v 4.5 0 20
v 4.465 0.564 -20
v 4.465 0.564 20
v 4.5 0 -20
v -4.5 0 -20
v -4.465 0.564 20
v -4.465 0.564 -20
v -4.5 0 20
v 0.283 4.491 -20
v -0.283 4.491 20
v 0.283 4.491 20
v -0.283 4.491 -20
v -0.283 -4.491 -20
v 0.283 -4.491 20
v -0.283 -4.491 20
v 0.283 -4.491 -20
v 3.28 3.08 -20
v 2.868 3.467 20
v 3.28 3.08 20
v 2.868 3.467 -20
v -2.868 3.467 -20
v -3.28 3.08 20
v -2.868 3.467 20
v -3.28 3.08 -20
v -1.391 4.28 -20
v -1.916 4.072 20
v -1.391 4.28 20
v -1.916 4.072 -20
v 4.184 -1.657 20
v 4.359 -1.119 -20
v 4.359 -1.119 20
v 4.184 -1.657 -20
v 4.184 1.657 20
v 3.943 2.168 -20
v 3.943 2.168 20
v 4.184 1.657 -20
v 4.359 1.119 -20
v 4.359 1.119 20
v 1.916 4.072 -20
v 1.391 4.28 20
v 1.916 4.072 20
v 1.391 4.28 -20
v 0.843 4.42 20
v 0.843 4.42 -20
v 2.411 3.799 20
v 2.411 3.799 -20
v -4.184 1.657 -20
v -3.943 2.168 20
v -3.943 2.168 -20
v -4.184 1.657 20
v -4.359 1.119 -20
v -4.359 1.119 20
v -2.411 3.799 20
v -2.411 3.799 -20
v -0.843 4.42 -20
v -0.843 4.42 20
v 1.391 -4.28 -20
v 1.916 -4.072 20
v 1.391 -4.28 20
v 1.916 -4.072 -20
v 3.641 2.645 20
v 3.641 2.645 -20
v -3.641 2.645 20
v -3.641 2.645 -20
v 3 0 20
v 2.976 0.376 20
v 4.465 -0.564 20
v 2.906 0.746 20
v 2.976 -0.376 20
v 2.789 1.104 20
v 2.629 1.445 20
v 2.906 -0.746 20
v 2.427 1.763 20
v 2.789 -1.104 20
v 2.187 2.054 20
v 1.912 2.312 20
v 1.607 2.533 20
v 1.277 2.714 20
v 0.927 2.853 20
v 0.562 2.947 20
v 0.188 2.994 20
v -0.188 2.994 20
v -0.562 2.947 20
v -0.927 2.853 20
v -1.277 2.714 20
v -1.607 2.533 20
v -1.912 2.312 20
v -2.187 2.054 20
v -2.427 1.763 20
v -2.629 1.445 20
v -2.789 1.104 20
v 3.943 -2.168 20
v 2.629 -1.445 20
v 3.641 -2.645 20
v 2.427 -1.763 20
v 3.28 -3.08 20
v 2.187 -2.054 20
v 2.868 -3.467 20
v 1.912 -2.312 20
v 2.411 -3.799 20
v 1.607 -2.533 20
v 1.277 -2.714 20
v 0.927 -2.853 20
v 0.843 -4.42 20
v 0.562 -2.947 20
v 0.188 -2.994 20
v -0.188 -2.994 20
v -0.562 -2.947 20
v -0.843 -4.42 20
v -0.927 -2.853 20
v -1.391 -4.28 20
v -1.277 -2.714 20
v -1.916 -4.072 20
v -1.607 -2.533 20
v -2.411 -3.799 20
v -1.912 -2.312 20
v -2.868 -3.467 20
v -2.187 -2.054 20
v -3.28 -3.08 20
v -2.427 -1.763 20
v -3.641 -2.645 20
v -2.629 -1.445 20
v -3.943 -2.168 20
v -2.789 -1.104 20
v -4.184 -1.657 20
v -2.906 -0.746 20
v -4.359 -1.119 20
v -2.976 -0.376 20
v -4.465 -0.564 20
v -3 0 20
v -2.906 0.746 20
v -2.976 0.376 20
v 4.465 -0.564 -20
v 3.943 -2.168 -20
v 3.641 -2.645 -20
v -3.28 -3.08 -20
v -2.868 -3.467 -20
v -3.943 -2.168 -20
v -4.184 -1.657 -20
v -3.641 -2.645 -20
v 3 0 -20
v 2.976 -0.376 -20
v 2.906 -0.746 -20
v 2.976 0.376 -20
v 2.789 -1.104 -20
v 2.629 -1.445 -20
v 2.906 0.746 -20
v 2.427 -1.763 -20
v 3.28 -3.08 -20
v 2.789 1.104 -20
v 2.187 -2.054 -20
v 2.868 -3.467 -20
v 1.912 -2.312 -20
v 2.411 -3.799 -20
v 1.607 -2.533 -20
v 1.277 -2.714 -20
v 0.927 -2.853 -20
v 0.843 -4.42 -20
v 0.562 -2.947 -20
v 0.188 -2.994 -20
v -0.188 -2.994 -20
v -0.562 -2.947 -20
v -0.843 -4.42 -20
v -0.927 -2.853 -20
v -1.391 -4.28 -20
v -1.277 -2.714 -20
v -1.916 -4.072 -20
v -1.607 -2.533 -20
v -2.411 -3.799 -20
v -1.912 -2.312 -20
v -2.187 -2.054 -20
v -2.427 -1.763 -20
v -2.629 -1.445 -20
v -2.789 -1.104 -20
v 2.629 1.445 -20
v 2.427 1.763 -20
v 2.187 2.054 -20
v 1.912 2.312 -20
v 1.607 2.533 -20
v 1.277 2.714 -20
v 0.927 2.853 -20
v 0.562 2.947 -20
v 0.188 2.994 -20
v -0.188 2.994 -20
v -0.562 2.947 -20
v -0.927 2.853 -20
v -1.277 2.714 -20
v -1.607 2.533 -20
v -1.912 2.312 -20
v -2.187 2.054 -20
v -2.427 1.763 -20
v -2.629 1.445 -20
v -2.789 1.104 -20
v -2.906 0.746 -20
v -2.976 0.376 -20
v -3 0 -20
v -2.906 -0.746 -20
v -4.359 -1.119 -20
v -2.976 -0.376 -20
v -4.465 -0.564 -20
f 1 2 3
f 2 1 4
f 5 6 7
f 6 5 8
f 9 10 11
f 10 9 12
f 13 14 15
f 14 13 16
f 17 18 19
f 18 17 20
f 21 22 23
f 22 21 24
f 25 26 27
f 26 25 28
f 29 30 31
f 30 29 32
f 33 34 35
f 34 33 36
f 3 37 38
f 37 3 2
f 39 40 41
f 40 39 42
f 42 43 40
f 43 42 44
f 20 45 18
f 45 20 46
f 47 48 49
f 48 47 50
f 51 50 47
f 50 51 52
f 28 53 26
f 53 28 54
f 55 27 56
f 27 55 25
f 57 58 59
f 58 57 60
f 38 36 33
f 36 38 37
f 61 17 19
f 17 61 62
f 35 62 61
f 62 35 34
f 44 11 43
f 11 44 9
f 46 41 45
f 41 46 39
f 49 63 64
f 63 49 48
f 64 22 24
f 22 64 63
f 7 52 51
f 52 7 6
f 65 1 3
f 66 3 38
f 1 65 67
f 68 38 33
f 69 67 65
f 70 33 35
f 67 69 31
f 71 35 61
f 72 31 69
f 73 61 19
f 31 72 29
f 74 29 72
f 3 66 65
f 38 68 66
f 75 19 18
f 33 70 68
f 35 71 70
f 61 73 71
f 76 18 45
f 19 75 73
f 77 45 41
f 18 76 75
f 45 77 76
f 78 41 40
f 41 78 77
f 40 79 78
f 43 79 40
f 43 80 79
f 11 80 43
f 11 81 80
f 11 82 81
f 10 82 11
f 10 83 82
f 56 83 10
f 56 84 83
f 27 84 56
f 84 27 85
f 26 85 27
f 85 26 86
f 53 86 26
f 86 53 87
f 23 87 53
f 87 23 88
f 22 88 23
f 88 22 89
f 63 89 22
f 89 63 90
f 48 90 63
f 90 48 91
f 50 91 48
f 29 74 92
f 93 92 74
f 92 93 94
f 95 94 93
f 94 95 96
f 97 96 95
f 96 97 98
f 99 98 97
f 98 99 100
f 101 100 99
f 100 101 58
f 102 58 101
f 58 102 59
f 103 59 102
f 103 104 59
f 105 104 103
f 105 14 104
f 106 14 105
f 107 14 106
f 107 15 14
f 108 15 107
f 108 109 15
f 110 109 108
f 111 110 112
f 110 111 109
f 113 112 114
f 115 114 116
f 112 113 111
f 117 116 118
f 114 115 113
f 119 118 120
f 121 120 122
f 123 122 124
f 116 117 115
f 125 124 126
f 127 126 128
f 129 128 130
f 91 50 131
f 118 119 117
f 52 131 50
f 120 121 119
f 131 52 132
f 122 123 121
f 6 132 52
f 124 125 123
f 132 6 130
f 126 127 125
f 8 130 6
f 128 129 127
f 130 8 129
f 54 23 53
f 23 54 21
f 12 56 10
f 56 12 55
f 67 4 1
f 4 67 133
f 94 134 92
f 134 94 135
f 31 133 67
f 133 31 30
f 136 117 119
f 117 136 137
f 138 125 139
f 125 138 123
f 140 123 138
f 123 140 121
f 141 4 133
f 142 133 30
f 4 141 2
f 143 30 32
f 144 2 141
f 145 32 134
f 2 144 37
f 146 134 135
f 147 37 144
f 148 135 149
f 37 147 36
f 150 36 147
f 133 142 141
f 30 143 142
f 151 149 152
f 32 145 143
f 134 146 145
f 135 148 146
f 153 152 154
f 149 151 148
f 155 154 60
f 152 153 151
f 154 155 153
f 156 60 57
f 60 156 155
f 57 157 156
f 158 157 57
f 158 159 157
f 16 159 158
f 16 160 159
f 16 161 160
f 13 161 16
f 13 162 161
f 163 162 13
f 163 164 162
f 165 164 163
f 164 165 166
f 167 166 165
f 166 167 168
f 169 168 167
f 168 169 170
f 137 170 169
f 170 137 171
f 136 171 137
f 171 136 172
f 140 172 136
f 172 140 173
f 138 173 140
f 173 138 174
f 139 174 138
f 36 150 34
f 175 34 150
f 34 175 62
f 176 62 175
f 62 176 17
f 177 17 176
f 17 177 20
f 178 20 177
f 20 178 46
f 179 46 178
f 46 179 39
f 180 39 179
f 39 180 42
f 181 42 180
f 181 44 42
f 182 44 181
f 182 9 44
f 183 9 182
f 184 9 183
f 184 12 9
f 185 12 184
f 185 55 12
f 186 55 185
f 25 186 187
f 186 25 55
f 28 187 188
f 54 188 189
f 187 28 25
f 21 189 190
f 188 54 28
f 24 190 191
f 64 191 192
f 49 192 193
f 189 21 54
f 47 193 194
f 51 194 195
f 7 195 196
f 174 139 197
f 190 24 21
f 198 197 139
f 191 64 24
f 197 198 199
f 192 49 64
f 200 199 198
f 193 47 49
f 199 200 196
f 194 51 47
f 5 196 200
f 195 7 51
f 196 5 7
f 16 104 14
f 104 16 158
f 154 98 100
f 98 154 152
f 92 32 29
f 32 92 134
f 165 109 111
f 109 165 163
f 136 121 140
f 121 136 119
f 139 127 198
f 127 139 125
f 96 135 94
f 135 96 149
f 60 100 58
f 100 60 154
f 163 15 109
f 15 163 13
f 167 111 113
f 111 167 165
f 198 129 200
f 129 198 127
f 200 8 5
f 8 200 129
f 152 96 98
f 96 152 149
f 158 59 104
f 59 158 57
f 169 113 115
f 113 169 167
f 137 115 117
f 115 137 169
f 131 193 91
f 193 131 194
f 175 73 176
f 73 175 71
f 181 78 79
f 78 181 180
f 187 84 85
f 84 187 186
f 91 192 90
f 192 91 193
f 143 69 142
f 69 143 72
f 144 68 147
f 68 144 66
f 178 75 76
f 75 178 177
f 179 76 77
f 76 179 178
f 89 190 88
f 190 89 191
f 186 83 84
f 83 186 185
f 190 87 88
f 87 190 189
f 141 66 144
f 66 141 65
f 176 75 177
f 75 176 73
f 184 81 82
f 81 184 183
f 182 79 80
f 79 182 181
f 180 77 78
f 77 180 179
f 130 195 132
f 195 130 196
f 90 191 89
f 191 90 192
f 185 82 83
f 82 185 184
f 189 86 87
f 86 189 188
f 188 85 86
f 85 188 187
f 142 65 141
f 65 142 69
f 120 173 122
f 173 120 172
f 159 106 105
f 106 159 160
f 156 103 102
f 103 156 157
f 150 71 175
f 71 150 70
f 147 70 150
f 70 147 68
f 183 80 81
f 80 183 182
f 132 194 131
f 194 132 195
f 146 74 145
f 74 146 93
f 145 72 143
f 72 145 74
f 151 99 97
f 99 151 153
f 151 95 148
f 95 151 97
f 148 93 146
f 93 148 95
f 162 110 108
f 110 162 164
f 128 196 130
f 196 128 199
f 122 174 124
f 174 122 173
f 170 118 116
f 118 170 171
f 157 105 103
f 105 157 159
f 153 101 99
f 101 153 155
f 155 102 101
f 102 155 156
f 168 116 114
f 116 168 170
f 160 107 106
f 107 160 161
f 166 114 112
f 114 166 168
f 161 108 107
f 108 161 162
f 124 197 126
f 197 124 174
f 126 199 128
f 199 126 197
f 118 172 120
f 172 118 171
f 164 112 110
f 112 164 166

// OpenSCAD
$fn = 50;


difference() {
	union() {
		translate(v = [0, 0, -20.0000000000]) {
			cylinder(h = 40, r = 4.5000000000);
		}
	}
	union() {
		translate(v = [0, 0, -100.0000000000]) {
			cylinder(h = 200, r = 3);
		}
	}
}
